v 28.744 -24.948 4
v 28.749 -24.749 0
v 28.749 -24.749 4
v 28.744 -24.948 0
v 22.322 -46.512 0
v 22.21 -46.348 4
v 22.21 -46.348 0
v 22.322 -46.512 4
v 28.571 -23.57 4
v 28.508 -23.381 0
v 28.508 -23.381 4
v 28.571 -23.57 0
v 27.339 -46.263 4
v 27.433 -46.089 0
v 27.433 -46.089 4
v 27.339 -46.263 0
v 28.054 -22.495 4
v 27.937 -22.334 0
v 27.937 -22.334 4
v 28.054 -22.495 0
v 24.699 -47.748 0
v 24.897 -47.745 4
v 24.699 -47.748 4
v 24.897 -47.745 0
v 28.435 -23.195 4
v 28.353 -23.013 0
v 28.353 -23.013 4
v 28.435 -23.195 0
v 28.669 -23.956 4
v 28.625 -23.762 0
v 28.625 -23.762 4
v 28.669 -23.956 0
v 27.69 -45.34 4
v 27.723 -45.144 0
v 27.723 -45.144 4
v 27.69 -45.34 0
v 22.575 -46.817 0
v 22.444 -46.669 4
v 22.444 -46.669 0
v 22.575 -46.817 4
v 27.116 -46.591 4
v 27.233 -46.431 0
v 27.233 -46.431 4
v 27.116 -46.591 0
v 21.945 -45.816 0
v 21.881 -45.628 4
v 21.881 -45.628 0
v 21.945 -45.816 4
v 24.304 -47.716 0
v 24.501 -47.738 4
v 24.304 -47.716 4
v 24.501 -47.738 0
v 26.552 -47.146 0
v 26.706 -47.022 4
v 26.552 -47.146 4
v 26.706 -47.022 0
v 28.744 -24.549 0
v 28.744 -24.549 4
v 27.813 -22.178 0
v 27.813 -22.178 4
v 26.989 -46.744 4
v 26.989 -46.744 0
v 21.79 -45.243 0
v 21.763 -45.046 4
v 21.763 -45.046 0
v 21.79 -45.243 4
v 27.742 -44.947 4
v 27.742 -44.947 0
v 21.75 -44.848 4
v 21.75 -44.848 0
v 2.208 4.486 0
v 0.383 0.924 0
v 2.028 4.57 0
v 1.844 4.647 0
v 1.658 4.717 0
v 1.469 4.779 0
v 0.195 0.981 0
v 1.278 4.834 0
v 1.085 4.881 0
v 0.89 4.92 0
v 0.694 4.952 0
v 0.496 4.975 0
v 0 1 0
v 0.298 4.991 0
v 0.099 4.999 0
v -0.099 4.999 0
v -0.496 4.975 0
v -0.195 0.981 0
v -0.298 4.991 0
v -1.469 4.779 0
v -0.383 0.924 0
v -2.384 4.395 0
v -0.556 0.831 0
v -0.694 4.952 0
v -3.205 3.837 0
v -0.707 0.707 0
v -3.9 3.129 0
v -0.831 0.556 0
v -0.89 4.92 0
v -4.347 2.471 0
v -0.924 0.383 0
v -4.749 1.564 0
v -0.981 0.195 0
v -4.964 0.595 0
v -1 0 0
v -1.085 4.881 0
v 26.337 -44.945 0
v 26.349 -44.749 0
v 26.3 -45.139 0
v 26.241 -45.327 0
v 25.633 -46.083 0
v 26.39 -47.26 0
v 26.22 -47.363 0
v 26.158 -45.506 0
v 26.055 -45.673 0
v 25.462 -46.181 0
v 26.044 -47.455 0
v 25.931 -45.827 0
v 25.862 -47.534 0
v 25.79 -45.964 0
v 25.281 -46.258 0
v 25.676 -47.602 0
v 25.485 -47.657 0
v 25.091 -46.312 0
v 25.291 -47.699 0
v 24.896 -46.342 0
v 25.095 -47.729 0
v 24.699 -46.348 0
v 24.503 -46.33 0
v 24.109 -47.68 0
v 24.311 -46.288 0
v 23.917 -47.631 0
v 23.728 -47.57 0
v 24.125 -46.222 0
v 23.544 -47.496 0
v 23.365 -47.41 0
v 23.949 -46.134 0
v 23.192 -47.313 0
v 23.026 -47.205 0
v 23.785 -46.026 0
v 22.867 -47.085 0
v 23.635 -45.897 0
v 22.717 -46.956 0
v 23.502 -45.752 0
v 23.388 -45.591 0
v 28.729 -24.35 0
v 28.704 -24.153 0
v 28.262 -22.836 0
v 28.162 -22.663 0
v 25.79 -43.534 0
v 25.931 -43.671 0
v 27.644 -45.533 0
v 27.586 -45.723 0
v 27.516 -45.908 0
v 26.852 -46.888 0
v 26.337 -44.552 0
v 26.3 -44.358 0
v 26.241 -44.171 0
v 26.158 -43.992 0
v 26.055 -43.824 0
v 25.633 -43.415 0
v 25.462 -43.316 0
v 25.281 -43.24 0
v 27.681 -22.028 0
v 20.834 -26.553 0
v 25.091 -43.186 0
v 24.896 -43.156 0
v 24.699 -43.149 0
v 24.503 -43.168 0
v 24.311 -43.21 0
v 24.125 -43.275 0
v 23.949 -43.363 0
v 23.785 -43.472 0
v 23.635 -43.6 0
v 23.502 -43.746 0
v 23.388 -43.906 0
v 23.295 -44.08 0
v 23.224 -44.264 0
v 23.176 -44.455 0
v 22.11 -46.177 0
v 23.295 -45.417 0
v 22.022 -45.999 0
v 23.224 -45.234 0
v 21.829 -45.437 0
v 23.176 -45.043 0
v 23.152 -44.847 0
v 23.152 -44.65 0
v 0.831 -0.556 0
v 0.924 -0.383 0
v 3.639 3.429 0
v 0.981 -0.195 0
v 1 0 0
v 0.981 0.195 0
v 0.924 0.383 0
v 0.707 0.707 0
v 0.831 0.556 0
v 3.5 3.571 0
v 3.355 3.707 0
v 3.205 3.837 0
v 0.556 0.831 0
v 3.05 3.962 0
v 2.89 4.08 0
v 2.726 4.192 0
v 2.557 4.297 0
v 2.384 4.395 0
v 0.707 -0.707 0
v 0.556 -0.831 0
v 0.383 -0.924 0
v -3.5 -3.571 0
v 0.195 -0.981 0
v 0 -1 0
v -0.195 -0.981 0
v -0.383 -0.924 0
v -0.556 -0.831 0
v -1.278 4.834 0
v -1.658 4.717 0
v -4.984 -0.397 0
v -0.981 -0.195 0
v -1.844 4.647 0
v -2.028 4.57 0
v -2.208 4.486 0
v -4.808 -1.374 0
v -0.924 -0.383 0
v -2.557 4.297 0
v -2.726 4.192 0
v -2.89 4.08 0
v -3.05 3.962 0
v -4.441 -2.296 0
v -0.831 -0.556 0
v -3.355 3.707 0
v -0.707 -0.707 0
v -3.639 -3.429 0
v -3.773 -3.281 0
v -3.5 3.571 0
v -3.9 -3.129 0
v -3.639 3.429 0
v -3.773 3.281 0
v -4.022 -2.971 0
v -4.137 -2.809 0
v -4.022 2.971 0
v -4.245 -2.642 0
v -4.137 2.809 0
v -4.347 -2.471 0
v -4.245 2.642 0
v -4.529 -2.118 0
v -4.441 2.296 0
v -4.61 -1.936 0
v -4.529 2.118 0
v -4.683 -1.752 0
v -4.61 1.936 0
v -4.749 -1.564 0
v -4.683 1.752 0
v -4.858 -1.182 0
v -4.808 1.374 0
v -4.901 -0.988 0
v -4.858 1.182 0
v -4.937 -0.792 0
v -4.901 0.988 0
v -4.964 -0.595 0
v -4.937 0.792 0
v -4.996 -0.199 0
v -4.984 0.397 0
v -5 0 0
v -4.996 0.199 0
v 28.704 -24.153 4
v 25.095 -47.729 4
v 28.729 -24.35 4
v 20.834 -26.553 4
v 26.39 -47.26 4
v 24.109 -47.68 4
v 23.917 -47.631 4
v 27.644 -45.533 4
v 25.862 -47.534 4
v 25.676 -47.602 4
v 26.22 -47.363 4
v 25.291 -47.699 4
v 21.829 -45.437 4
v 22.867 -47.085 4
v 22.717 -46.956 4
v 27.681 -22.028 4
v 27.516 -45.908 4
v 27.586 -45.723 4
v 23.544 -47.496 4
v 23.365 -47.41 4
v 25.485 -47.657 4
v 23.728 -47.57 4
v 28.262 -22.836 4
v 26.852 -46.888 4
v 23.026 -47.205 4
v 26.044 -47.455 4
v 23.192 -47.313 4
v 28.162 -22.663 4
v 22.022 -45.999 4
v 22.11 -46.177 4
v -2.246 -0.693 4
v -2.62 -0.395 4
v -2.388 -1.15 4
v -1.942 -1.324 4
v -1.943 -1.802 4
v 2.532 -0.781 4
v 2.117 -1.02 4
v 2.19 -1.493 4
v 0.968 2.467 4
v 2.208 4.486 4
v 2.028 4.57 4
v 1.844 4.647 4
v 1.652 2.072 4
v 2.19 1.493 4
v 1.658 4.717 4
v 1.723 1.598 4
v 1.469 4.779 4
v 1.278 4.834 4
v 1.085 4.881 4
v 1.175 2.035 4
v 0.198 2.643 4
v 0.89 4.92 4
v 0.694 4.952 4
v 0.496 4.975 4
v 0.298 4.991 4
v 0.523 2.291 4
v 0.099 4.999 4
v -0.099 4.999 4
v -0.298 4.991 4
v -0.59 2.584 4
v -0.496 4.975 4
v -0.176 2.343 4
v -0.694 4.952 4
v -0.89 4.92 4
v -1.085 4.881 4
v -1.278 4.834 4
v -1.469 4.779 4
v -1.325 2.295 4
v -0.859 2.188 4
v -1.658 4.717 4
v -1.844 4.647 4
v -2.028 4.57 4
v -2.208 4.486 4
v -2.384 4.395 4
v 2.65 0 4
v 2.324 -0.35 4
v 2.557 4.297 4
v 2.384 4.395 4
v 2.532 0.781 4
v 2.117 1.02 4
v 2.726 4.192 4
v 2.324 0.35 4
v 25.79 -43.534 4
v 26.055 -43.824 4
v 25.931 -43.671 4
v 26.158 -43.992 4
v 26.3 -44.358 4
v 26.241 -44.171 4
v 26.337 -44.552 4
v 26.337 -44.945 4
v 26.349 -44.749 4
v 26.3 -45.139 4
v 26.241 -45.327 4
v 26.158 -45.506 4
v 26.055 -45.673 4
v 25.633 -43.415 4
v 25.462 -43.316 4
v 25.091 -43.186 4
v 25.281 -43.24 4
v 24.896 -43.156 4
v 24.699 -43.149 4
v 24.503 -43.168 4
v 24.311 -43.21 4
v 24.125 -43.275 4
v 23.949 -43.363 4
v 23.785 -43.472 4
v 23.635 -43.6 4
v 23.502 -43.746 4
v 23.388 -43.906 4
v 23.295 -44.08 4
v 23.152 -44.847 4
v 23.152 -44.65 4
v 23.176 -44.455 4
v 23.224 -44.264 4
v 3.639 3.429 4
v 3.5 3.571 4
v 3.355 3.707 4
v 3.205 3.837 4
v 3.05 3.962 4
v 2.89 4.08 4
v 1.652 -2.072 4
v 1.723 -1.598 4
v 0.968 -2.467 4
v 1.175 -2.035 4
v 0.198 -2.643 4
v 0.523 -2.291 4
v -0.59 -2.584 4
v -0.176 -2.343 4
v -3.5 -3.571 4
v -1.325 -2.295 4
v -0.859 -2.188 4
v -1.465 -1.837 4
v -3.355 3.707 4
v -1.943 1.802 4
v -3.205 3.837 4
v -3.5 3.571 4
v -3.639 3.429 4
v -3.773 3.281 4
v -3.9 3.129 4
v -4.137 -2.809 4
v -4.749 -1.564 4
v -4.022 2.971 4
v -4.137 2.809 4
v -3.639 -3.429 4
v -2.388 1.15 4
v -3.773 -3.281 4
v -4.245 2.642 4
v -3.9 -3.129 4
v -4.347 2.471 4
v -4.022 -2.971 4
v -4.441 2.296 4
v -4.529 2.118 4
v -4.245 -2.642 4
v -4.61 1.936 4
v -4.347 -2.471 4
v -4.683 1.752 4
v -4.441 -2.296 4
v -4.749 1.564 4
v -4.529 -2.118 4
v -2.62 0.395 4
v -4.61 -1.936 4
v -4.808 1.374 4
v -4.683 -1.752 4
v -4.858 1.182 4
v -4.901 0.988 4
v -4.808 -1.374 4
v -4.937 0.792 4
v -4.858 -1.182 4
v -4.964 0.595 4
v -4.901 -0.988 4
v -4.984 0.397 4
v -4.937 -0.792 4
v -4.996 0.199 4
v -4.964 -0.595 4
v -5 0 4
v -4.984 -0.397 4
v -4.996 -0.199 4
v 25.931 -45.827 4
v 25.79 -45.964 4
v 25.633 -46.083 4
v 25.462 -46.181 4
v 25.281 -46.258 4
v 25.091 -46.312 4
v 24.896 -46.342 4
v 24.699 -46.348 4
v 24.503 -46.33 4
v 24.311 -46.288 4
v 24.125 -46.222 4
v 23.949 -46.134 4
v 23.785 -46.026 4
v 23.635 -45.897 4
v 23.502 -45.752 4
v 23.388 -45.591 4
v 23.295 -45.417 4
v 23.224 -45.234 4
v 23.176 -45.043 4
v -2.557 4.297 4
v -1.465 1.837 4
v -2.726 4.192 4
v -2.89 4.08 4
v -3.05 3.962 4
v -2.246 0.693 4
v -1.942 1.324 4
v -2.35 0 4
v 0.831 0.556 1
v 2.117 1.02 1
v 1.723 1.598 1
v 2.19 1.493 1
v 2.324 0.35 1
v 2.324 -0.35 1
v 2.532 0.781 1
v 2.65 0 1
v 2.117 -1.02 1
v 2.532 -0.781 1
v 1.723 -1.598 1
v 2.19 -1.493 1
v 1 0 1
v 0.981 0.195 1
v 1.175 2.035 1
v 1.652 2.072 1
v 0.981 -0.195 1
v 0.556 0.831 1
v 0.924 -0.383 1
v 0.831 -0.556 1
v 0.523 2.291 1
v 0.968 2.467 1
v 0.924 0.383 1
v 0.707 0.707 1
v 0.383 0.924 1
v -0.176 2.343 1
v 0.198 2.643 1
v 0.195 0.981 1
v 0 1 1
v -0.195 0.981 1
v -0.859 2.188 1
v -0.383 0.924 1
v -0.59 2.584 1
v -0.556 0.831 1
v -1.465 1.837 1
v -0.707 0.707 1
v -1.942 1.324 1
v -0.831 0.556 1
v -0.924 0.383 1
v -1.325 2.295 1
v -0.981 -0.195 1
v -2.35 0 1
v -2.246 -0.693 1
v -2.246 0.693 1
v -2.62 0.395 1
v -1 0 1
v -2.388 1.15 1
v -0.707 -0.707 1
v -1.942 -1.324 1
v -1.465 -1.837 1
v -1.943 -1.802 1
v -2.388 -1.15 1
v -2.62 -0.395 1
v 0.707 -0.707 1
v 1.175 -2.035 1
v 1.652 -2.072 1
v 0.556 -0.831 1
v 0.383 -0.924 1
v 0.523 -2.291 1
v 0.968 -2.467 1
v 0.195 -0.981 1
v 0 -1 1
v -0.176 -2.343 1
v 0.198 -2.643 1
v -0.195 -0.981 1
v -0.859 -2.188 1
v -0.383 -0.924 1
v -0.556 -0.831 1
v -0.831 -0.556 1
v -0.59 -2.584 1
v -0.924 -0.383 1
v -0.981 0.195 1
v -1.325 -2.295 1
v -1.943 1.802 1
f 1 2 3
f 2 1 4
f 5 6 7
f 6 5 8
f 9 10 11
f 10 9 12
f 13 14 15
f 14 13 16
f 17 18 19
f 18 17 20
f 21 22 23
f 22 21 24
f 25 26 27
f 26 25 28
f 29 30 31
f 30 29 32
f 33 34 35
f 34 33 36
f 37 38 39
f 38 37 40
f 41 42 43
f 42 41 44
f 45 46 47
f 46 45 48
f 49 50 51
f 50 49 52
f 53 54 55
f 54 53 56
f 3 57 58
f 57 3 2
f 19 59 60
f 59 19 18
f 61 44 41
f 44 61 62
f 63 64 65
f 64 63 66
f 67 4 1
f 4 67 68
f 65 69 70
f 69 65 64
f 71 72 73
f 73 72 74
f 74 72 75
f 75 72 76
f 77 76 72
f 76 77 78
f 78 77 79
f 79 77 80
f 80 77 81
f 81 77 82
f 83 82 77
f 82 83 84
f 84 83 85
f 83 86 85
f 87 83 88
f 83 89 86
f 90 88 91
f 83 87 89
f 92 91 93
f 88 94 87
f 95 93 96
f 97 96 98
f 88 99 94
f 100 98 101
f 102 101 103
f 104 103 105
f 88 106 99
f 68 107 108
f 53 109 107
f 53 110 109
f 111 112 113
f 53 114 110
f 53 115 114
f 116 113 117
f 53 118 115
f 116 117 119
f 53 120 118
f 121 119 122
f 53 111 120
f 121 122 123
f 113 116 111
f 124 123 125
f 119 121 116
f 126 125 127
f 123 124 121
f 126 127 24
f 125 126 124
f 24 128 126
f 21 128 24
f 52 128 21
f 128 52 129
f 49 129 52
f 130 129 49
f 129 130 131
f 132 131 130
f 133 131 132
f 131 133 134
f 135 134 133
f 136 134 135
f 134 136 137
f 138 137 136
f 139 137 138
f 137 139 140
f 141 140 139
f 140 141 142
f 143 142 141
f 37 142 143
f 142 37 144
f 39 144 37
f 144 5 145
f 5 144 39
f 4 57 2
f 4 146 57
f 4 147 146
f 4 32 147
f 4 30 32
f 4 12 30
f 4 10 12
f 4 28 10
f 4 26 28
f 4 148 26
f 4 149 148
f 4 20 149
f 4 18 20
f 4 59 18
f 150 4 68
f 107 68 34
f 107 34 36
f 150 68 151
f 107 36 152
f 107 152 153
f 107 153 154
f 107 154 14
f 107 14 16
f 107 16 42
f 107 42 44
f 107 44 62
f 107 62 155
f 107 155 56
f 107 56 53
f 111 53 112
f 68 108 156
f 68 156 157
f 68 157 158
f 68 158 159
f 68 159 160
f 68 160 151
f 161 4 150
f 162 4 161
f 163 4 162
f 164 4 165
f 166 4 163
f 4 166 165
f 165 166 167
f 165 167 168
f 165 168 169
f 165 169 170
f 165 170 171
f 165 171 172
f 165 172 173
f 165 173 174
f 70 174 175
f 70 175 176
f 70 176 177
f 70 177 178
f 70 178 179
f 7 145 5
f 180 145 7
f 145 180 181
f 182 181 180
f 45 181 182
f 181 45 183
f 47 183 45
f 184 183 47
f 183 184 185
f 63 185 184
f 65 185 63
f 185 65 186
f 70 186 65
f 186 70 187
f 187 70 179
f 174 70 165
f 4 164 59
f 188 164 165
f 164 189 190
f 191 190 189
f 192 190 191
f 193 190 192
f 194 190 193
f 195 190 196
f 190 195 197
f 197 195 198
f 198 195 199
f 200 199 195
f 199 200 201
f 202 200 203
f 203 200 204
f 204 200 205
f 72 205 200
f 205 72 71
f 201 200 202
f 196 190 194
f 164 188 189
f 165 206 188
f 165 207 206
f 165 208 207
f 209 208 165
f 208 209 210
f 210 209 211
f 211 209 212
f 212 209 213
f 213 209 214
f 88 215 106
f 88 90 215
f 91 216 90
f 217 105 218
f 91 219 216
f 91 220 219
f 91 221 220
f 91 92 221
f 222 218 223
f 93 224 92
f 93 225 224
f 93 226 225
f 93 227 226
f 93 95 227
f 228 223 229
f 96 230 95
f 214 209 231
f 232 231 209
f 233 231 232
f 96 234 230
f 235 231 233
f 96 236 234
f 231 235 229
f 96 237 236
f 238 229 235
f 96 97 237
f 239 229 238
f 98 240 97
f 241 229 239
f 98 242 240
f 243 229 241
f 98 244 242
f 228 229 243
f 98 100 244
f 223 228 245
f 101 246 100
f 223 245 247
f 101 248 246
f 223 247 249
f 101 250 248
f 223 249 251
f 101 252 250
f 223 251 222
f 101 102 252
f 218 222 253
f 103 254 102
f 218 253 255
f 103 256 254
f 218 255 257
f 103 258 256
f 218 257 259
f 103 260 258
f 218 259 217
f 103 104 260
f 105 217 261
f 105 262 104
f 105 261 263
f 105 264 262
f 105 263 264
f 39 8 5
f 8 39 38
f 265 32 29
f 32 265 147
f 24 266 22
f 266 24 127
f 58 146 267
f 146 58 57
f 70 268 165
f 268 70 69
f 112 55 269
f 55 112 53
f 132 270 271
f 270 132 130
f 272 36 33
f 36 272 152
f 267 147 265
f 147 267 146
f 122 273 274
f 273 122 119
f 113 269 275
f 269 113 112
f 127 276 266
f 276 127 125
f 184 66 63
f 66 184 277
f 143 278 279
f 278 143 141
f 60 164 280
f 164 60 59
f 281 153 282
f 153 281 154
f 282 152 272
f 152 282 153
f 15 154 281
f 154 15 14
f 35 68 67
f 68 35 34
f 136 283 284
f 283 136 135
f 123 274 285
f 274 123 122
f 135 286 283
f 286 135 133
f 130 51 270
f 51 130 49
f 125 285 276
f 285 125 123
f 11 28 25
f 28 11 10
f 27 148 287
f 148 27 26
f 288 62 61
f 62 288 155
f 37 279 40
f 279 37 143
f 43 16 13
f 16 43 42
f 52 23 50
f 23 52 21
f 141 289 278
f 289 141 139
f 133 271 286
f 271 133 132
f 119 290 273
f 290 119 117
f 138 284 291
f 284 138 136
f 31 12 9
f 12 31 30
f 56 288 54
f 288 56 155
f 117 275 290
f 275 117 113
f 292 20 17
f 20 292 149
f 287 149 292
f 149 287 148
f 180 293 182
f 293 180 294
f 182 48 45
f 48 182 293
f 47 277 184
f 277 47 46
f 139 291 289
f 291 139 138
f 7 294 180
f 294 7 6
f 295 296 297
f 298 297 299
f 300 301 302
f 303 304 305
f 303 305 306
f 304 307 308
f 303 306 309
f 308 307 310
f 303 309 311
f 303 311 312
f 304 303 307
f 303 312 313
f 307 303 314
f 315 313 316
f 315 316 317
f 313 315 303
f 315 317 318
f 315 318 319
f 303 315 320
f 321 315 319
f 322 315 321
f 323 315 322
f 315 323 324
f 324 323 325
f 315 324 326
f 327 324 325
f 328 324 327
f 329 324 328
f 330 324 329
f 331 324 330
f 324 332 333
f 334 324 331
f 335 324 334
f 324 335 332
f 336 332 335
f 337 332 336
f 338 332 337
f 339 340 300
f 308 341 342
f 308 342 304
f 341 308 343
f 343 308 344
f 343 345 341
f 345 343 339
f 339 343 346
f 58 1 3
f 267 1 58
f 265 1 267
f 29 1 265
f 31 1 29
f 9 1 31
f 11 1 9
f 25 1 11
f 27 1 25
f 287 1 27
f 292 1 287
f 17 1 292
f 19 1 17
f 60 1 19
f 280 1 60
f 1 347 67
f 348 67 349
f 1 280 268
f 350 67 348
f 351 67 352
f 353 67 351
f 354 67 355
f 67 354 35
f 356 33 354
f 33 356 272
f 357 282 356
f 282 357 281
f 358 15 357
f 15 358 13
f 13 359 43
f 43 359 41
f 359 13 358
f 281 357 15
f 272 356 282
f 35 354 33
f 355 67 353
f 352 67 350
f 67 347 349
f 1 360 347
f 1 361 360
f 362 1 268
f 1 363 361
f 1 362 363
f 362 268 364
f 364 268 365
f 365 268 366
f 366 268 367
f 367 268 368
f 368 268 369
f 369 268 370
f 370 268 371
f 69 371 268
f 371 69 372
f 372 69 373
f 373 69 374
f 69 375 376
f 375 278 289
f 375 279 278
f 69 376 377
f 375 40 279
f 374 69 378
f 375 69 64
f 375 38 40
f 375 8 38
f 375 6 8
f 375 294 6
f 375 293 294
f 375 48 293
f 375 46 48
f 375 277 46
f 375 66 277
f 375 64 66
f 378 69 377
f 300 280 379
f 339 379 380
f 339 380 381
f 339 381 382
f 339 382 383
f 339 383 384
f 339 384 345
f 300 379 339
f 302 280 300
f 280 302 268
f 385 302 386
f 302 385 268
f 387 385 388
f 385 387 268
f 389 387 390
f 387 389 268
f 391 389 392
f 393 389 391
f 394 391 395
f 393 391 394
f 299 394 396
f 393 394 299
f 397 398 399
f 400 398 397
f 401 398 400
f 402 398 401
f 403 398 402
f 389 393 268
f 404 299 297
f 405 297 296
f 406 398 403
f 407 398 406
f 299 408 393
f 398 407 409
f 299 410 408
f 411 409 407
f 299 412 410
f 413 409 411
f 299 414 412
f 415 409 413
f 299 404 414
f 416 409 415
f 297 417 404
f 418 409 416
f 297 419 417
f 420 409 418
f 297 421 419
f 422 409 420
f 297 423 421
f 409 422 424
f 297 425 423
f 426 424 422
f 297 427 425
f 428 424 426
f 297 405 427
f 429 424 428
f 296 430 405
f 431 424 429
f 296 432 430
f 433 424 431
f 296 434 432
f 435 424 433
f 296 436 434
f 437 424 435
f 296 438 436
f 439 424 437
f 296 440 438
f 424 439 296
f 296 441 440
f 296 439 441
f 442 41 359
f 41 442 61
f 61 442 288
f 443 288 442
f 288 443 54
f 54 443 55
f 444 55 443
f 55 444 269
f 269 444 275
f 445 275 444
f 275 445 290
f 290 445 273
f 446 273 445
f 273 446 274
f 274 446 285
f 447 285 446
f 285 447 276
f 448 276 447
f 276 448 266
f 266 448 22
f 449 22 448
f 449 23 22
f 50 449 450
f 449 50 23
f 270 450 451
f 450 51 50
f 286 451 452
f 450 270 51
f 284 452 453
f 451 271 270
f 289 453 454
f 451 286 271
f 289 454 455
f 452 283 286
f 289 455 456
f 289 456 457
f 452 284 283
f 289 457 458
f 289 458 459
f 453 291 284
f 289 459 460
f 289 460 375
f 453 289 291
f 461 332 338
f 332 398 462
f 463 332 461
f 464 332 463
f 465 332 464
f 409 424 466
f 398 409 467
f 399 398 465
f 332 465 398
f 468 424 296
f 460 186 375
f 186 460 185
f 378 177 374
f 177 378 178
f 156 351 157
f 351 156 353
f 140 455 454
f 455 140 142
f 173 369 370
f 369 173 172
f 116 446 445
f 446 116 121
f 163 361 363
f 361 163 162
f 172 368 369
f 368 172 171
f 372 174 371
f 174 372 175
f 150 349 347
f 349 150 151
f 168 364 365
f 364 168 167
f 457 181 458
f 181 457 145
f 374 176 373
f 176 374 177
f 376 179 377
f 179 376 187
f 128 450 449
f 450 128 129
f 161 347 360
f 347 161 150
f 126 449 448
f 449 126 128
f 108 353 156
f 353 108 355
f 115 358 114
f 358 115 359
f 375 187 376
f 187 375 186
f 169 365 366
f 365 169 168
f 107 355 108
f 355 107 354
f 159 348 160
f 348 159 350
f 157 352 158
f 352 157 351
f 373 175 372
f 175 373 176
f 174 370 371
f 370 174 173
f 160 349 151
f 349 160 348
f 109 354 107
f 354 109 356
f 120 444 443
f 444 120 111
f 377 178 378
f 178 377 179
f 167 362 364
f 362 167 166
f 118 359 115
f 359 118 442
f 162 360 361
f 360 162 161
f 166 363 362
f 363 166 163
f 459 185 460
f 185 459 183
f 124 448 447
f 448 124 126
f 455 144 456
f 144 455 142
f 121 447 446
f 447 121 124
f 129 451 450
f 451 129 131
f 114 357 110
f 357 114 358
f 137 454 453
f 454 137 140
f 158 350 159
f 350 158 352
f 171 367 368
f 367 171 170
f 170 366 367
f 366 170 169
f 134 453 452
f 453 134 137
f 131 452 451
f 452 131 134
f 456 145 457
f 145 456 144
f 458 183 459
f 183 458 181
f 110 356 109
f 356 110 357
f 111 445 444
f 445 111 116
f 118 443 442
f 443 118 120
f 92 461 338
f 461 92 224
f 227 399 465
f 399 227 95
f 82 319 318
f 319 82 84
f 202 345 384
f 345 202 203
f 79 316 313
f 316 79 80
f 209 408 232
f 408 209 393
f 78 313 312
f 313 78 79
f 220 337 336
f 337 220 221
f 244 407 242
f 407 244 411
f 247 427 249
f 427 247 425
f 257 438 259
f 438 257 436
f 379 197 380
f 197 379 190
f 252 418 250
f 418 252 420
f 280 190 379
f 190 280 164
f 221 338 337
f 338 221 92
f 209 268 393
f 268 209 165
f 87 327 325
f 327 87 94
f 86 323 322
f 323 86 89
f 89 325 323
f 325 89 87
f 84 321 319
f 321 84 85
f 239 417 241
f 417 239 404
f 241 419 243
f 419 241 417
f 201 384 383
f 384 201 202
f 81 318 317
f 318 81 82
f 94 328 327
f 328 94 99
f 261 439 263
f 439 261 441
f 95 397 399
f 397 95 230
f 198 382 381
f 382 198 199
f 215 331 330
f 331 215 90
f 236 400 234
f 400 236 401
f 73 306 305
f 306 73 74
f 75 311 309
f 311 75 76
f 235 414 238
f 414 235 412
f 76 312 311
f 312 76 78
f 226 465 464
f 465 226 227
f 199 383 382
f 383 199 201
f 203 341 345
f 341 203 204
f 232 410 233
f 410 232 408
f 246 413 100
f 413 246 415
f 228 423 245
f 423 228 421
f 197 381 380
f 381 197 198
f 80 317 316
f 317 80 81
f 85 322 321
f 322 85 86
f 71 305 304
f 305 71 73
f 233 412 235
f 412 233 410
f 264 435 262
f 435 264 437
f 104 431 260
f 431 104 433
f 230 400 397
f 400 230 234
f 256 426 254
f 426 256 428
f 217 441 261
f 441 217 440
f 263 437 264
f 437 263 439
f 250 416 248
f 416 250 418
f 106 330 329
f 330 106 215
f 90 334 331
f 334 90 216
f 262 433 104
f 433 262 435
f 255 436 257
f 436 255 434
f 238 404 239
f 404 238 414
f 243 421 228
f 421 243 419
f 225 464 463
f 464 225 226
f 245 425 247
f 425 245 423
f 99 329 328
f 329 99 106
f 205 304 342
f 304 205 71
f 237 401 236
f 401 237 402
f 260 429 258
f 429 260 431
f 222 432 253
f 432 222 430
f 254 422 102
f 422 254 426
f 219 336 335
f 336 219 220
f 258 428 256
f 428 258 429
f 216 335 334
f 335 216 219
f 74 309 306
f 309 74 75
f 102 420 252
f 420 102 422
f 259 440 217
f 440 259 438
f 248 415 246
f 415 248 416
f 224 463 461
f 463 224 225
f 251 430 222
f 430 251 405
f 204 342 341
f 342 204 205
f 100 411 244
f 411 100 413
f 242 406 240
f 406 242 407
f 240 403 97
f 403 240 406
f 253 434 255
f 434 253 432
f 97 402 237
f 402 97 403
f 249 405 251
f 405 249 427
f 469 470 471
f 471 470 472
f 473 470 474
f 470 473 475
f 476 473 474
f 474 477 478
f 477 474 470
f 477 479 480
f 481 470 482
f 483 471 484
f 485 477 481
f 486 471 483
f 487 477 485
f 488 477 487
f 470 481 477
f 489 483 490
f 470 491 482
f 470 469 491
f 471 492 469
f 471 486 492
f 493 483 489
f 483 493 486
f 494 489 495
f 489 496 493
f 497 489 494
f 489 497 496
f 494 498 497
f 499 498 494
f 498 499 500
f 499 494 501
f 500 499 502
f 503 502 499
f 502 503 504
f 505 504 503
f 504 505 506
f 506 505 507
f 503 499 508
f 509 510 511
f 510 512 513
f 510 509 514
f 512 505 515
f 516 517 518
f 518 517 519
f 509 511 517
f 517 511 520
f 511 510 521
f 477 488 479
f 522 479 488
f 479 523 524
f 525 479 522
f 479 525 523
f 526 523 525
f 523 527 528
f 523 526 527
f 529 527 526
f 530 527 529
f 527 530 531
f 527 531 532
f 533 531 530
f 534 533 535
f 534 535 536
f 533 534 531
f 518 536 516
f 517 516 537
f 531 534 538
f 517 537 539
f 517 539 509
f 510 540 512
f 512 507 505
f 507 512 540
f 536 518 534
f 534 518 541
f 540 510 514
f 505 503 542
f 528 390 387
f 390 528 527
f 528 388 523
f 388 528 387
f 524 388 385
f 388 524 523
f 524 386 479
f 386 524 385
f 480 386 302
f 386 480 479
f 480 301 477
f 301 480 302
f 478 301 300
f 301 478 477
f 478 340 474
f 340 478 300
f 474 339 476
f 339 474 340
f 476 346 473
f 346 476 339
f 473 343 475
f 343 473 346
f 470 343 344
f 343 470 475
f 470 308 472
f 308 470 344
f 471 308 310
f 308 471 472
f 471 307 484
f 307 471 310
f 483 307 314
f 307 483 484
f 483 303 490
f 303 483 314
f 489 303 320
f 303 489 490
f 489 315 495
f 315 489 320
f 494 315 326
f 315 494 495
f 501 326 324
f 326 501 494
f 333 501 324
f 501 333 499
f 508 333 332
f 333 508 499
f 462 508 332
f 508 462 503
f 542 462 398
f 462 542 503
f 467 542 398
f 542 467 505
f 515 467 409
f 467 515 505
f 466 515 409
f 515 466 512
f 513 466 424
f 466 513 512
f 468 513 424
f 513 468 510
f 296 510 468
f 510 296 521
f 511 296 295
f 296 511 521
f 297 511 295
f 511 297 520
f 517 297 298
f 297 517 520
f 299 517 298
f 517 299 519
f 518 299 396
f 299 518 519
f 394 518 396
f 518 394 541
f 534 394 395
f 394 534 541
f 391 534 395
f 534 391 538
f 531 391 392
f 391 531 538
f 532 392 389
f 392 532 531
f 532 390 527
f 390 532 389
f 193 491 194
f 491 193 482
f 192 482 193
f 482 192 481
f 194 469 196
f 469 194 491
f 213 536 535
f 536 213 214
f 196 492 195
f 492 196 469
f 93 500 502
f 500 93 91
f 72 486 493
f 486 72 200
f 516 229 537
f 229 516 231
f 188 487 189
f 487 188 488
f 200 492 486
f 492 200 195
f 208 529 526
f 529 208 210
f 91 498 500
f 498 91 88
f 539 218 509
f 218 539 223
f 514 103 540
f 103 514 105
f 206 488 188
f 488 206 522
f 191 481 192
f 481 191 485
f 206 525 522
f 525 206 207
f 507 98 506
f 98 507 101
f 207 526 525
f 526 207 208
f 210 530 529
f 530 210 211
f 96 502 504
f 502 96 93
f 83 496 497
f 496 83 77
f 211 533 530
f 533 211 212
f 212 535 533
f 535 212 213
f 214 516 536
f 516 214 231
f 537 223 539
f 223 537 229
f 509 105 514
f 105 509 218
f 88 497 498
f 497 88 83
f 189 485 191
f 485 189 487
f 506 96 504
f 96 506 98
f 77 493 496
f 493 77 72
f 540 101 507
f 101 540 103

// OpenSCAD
// RoboFootball servo mount
$fs = 0.2;
$fa = 1;

// servo geometry
motor_block_length = 23;
motor_overall_length = 32;
motor_depth_to_retainer = 19.5;
motor_width = 12;
motor_clearance = 0.2;
motor_base_to_shaft = 32;
motor_protruding_from_mount = motor_base_to_shaft - motor_depth_to_retainer;
motor_hole_offset = 27.7;
motor_hole_outset = (motor_overall_length - motor_hole_offset) / 2;
motor_hole_d = 3.2;

// servo mount geometry
mount_x = 80;
mount_y = 42;
mount_z = 18;
mount_base_thickness = 3;
mount_holder_thickness = 3;
mount_brace = 4;
mount_hole_d = 3.2; 

// kicker geometry
kicker_spline_depth = 3;
kicker_thickness = 4;
kicker_d1 = 10;
kicker_d2 = 8;
kicker_d3 = 6;
kicker_screwhole_d = 2;
kicker_boot_screwhole = 3.2;

module mount_profile() {
  x_offset_holder = (mount_x/2) - motor_protruding_from_mount;
  square([mount_x, mount_base_thickness]);
  translate([x_offset_holder-mount_holder_thickness, 0])
    square([mount_holder_thickness, mount_y]);
  // chamfer
  x1 = x_offset_holder - mount_holder_thickness - mount_brace;
  x2 = x1 + mount_brace;
  x3 = x2 + mount_holder_thickness;
  x4 = x3 + mount_brace;
  y1 = mount_base_thickness - 0.001;
  y2 = y1 + mount_brace;
  polygon([
    [x1,y1],
    [x2,y2],
    [x3,y2],
    [x4,y1]
  ]);
}

module solid_mount() {
  linear_extrude(height=mount_z)
    mount_profile();
}

module motor_slot() {
  x_offset_holder = (mount_x/2) - motor_protruding_from_mount;
  motor_slot_length = motor_block_length + (motor_clearance*2);
  motor_slot_width = motor_width + (motor_clearance*2);
  y_offset = 4;
  motor_hole_outset = (motor_overall_length - motor_hole_offset) / 2;
  
  
  translate([x_offset_holder-mount_holder_thickness-1,(mount_y-motor_slot_length)/2+y_offset,(mount_z-motor_slot_width)/2]) {
    cube([mount_holder_thickness+2, motor_slot_length, motor_slot_width]);
    
    // screw holes
    translate([0,-motor_hole_outset,motor_slot_width/2])
      rotate([0,90,0])
        cylinder(d=motor_hole_d, h=mount_holder_thickness+2);
    translate([0,motor_hole_offset-motor_hole_outset,motor_slot_width/2])
      rotate([0,90,0])
        cylinder(d=motor_hole_d, h=mount_holder_thickness+2);
  }
}

module base_screwhole() {
  translate([0,-1,mount_z/2])
    rotate([-90,0,0])
      cylinder(d=mount_hole_d, h=mount_base_thickness+2);
}

module base_screwholes() {
  inset = 10; // they end up being 60mm apart
  translate([inset,0,0])
    base_screwhole();
  translate([mount_x-inset,0,0])
    base_screwhole();
}

module mount() {
  difference() {
    solid_mount();
    // motor slot and screwholes
    motor_slot(); 
  
    // base screwholes
    base_screwholes();
  }
  
}

// ***************************************************
// Kicker
// ***************************************************
module spline_profile() {
    spline_od = 5.3; // 4.8 measured
    spline_tooth_depth = 0.3; // 0.25;
    
    outradius = spline_od/2; // the outside of the 'zigzags' that hold the rubber band
    inradius = outradius - spline_tooth_depth; // the inside of the 'zigzags' that hold the rubber band
    points = 21; // the number of 'zigzags'
    steps = points * 2;
    
    function getangle(point, steps) = point * (360/steps);
    function getradius(point) = ((point % 2) == 0) ? outradius : inradius;
    function getx(point, steps) = getradius(point) * cos(getangle(point, steps));
    function gety(point, steps) = getradius(point) * sin(getangle(point, steps));

    // the zigzag outline
    polypoints = [for (i=[0:1:steps]) [getx(i, steps), gety(i, steps)]  ];
    polygon(polypoints); // zigzaggy outline

//    linear_extrude(height=wheelwidth) {
//        difference() { // cutout for shaft
//            union() {
//                circle(r=hubradius); // the hub
//                // spokes
//                for (i=[0:1:spokes-1]) {
//                    angle = i * (360/spokes);
//                    rotate([0,0,angle])
//                        translate([0,inradius/2,0])
//                        square(size=[spokewidth,inradius], center=true);
//                }
//                difference() {    
//                    polygon(polypoints); // zigzaggy outline
//                    circle(r=rimradius); // cutout for open wheel
//                }
//            }
//            //tt_shaft(); // cutout for shaft
//        }
//    }
    
    
}

module leg() {
  thigh_length = 35;
  thigh_off = sqrt((thigh_length*thigh_length)/2);
  shin_length = 20;
  echo(thigh_off);
  
  hull() {
    cylinder(d=kicker_d1, h=kicker_thickness);
    translate([thigh_off,-thigh_off,0])
      cylinder(d=kicker_d2, h=kicker_thickness);
  }
  difference() {
    hull() {
      translate([thigh_off,-thigh_off,0])
        cylinder(d=kicker_d2, h=kicker_thickness);
      translate([thigh_off,-thigh_off-shin_length,0])
        difference() {
          cylinder(d=kicker_d3, h=kicker_thickness);
          
        }
    }
    translate([thigh_off,-thigh_off-shin_length,-1]) 
      cylinder(d=kicker_boot_screwhole, h=kicker_thickness+2);
  }
}
module kicker() {
//  kicker_spline_depth = 3;
//kicker_thickness = 4;
//kicker_d1 = 8;
//kicker_d2 = 4;
//kicker_screwhole_d = 2;
  offset = 12;

  difference() {
    leg();
    translate([0,0,kicker_thickness-kicker_spline_depth])
    linear_extrude(height=kicker_spline_depth+0.001)
      spline_profile();
    // screwhole
    translate([0,0,-1])
    cylinder(d=kicker_screwhole_d, h=kicker_thickness+2);
  }
  
}

module boot() {
  boot_d = 10;
  ball_d = 62+(boot_d/2); // TODO
  boot_angle = 120;
  
  rotate_extrude(angle=boot_angle/2)
    translate([ball_d/2,0])
      circle(d=boot_d);
  rotate_extrude(angle=-boot_angle/2)
    translate([ball_d/2,0])
      circle(d=boot_d);
      
  rotate([0,0,boot_angle/2])
    translate([ball_d/2,0,0])
      sphere(d=boot_d);
  rotate([0,0,-boot_angle/2])
    translate([ball_d/2,0,0])
      sphere(d=boot_d);
  
  holder_clearance = 0.2;
  holder_x = boot_d * 1.25;
  holder_leg_thickness = 1;
  holder_y = kicker_thickness + (holder_leg_thickness*2) + (holder_clearance*2);
  holder_z = boot_d;
  holder_gap = kicker_thickness + (holder_clearance*2);
  
  translate([ball_d/2, -holder_y/2, -holder_z/2])
  difference() {
    cube([holder_x, holder_y, holder_z]);
    translate([-1,(holder_y-holder_gap)/2,-1])
      cube([holder_x + 2, holder_gap, holder_z+2]);
    translate([holder_x-(kicker_boot_screwhole*1),-1,holder_z/2])
      rotate([-90,0,0])
        cylinder(d=kicker_boot_screwhole, h=holder_y+2);
  }
  
}

//mount();
kicker(); 
//boot();
